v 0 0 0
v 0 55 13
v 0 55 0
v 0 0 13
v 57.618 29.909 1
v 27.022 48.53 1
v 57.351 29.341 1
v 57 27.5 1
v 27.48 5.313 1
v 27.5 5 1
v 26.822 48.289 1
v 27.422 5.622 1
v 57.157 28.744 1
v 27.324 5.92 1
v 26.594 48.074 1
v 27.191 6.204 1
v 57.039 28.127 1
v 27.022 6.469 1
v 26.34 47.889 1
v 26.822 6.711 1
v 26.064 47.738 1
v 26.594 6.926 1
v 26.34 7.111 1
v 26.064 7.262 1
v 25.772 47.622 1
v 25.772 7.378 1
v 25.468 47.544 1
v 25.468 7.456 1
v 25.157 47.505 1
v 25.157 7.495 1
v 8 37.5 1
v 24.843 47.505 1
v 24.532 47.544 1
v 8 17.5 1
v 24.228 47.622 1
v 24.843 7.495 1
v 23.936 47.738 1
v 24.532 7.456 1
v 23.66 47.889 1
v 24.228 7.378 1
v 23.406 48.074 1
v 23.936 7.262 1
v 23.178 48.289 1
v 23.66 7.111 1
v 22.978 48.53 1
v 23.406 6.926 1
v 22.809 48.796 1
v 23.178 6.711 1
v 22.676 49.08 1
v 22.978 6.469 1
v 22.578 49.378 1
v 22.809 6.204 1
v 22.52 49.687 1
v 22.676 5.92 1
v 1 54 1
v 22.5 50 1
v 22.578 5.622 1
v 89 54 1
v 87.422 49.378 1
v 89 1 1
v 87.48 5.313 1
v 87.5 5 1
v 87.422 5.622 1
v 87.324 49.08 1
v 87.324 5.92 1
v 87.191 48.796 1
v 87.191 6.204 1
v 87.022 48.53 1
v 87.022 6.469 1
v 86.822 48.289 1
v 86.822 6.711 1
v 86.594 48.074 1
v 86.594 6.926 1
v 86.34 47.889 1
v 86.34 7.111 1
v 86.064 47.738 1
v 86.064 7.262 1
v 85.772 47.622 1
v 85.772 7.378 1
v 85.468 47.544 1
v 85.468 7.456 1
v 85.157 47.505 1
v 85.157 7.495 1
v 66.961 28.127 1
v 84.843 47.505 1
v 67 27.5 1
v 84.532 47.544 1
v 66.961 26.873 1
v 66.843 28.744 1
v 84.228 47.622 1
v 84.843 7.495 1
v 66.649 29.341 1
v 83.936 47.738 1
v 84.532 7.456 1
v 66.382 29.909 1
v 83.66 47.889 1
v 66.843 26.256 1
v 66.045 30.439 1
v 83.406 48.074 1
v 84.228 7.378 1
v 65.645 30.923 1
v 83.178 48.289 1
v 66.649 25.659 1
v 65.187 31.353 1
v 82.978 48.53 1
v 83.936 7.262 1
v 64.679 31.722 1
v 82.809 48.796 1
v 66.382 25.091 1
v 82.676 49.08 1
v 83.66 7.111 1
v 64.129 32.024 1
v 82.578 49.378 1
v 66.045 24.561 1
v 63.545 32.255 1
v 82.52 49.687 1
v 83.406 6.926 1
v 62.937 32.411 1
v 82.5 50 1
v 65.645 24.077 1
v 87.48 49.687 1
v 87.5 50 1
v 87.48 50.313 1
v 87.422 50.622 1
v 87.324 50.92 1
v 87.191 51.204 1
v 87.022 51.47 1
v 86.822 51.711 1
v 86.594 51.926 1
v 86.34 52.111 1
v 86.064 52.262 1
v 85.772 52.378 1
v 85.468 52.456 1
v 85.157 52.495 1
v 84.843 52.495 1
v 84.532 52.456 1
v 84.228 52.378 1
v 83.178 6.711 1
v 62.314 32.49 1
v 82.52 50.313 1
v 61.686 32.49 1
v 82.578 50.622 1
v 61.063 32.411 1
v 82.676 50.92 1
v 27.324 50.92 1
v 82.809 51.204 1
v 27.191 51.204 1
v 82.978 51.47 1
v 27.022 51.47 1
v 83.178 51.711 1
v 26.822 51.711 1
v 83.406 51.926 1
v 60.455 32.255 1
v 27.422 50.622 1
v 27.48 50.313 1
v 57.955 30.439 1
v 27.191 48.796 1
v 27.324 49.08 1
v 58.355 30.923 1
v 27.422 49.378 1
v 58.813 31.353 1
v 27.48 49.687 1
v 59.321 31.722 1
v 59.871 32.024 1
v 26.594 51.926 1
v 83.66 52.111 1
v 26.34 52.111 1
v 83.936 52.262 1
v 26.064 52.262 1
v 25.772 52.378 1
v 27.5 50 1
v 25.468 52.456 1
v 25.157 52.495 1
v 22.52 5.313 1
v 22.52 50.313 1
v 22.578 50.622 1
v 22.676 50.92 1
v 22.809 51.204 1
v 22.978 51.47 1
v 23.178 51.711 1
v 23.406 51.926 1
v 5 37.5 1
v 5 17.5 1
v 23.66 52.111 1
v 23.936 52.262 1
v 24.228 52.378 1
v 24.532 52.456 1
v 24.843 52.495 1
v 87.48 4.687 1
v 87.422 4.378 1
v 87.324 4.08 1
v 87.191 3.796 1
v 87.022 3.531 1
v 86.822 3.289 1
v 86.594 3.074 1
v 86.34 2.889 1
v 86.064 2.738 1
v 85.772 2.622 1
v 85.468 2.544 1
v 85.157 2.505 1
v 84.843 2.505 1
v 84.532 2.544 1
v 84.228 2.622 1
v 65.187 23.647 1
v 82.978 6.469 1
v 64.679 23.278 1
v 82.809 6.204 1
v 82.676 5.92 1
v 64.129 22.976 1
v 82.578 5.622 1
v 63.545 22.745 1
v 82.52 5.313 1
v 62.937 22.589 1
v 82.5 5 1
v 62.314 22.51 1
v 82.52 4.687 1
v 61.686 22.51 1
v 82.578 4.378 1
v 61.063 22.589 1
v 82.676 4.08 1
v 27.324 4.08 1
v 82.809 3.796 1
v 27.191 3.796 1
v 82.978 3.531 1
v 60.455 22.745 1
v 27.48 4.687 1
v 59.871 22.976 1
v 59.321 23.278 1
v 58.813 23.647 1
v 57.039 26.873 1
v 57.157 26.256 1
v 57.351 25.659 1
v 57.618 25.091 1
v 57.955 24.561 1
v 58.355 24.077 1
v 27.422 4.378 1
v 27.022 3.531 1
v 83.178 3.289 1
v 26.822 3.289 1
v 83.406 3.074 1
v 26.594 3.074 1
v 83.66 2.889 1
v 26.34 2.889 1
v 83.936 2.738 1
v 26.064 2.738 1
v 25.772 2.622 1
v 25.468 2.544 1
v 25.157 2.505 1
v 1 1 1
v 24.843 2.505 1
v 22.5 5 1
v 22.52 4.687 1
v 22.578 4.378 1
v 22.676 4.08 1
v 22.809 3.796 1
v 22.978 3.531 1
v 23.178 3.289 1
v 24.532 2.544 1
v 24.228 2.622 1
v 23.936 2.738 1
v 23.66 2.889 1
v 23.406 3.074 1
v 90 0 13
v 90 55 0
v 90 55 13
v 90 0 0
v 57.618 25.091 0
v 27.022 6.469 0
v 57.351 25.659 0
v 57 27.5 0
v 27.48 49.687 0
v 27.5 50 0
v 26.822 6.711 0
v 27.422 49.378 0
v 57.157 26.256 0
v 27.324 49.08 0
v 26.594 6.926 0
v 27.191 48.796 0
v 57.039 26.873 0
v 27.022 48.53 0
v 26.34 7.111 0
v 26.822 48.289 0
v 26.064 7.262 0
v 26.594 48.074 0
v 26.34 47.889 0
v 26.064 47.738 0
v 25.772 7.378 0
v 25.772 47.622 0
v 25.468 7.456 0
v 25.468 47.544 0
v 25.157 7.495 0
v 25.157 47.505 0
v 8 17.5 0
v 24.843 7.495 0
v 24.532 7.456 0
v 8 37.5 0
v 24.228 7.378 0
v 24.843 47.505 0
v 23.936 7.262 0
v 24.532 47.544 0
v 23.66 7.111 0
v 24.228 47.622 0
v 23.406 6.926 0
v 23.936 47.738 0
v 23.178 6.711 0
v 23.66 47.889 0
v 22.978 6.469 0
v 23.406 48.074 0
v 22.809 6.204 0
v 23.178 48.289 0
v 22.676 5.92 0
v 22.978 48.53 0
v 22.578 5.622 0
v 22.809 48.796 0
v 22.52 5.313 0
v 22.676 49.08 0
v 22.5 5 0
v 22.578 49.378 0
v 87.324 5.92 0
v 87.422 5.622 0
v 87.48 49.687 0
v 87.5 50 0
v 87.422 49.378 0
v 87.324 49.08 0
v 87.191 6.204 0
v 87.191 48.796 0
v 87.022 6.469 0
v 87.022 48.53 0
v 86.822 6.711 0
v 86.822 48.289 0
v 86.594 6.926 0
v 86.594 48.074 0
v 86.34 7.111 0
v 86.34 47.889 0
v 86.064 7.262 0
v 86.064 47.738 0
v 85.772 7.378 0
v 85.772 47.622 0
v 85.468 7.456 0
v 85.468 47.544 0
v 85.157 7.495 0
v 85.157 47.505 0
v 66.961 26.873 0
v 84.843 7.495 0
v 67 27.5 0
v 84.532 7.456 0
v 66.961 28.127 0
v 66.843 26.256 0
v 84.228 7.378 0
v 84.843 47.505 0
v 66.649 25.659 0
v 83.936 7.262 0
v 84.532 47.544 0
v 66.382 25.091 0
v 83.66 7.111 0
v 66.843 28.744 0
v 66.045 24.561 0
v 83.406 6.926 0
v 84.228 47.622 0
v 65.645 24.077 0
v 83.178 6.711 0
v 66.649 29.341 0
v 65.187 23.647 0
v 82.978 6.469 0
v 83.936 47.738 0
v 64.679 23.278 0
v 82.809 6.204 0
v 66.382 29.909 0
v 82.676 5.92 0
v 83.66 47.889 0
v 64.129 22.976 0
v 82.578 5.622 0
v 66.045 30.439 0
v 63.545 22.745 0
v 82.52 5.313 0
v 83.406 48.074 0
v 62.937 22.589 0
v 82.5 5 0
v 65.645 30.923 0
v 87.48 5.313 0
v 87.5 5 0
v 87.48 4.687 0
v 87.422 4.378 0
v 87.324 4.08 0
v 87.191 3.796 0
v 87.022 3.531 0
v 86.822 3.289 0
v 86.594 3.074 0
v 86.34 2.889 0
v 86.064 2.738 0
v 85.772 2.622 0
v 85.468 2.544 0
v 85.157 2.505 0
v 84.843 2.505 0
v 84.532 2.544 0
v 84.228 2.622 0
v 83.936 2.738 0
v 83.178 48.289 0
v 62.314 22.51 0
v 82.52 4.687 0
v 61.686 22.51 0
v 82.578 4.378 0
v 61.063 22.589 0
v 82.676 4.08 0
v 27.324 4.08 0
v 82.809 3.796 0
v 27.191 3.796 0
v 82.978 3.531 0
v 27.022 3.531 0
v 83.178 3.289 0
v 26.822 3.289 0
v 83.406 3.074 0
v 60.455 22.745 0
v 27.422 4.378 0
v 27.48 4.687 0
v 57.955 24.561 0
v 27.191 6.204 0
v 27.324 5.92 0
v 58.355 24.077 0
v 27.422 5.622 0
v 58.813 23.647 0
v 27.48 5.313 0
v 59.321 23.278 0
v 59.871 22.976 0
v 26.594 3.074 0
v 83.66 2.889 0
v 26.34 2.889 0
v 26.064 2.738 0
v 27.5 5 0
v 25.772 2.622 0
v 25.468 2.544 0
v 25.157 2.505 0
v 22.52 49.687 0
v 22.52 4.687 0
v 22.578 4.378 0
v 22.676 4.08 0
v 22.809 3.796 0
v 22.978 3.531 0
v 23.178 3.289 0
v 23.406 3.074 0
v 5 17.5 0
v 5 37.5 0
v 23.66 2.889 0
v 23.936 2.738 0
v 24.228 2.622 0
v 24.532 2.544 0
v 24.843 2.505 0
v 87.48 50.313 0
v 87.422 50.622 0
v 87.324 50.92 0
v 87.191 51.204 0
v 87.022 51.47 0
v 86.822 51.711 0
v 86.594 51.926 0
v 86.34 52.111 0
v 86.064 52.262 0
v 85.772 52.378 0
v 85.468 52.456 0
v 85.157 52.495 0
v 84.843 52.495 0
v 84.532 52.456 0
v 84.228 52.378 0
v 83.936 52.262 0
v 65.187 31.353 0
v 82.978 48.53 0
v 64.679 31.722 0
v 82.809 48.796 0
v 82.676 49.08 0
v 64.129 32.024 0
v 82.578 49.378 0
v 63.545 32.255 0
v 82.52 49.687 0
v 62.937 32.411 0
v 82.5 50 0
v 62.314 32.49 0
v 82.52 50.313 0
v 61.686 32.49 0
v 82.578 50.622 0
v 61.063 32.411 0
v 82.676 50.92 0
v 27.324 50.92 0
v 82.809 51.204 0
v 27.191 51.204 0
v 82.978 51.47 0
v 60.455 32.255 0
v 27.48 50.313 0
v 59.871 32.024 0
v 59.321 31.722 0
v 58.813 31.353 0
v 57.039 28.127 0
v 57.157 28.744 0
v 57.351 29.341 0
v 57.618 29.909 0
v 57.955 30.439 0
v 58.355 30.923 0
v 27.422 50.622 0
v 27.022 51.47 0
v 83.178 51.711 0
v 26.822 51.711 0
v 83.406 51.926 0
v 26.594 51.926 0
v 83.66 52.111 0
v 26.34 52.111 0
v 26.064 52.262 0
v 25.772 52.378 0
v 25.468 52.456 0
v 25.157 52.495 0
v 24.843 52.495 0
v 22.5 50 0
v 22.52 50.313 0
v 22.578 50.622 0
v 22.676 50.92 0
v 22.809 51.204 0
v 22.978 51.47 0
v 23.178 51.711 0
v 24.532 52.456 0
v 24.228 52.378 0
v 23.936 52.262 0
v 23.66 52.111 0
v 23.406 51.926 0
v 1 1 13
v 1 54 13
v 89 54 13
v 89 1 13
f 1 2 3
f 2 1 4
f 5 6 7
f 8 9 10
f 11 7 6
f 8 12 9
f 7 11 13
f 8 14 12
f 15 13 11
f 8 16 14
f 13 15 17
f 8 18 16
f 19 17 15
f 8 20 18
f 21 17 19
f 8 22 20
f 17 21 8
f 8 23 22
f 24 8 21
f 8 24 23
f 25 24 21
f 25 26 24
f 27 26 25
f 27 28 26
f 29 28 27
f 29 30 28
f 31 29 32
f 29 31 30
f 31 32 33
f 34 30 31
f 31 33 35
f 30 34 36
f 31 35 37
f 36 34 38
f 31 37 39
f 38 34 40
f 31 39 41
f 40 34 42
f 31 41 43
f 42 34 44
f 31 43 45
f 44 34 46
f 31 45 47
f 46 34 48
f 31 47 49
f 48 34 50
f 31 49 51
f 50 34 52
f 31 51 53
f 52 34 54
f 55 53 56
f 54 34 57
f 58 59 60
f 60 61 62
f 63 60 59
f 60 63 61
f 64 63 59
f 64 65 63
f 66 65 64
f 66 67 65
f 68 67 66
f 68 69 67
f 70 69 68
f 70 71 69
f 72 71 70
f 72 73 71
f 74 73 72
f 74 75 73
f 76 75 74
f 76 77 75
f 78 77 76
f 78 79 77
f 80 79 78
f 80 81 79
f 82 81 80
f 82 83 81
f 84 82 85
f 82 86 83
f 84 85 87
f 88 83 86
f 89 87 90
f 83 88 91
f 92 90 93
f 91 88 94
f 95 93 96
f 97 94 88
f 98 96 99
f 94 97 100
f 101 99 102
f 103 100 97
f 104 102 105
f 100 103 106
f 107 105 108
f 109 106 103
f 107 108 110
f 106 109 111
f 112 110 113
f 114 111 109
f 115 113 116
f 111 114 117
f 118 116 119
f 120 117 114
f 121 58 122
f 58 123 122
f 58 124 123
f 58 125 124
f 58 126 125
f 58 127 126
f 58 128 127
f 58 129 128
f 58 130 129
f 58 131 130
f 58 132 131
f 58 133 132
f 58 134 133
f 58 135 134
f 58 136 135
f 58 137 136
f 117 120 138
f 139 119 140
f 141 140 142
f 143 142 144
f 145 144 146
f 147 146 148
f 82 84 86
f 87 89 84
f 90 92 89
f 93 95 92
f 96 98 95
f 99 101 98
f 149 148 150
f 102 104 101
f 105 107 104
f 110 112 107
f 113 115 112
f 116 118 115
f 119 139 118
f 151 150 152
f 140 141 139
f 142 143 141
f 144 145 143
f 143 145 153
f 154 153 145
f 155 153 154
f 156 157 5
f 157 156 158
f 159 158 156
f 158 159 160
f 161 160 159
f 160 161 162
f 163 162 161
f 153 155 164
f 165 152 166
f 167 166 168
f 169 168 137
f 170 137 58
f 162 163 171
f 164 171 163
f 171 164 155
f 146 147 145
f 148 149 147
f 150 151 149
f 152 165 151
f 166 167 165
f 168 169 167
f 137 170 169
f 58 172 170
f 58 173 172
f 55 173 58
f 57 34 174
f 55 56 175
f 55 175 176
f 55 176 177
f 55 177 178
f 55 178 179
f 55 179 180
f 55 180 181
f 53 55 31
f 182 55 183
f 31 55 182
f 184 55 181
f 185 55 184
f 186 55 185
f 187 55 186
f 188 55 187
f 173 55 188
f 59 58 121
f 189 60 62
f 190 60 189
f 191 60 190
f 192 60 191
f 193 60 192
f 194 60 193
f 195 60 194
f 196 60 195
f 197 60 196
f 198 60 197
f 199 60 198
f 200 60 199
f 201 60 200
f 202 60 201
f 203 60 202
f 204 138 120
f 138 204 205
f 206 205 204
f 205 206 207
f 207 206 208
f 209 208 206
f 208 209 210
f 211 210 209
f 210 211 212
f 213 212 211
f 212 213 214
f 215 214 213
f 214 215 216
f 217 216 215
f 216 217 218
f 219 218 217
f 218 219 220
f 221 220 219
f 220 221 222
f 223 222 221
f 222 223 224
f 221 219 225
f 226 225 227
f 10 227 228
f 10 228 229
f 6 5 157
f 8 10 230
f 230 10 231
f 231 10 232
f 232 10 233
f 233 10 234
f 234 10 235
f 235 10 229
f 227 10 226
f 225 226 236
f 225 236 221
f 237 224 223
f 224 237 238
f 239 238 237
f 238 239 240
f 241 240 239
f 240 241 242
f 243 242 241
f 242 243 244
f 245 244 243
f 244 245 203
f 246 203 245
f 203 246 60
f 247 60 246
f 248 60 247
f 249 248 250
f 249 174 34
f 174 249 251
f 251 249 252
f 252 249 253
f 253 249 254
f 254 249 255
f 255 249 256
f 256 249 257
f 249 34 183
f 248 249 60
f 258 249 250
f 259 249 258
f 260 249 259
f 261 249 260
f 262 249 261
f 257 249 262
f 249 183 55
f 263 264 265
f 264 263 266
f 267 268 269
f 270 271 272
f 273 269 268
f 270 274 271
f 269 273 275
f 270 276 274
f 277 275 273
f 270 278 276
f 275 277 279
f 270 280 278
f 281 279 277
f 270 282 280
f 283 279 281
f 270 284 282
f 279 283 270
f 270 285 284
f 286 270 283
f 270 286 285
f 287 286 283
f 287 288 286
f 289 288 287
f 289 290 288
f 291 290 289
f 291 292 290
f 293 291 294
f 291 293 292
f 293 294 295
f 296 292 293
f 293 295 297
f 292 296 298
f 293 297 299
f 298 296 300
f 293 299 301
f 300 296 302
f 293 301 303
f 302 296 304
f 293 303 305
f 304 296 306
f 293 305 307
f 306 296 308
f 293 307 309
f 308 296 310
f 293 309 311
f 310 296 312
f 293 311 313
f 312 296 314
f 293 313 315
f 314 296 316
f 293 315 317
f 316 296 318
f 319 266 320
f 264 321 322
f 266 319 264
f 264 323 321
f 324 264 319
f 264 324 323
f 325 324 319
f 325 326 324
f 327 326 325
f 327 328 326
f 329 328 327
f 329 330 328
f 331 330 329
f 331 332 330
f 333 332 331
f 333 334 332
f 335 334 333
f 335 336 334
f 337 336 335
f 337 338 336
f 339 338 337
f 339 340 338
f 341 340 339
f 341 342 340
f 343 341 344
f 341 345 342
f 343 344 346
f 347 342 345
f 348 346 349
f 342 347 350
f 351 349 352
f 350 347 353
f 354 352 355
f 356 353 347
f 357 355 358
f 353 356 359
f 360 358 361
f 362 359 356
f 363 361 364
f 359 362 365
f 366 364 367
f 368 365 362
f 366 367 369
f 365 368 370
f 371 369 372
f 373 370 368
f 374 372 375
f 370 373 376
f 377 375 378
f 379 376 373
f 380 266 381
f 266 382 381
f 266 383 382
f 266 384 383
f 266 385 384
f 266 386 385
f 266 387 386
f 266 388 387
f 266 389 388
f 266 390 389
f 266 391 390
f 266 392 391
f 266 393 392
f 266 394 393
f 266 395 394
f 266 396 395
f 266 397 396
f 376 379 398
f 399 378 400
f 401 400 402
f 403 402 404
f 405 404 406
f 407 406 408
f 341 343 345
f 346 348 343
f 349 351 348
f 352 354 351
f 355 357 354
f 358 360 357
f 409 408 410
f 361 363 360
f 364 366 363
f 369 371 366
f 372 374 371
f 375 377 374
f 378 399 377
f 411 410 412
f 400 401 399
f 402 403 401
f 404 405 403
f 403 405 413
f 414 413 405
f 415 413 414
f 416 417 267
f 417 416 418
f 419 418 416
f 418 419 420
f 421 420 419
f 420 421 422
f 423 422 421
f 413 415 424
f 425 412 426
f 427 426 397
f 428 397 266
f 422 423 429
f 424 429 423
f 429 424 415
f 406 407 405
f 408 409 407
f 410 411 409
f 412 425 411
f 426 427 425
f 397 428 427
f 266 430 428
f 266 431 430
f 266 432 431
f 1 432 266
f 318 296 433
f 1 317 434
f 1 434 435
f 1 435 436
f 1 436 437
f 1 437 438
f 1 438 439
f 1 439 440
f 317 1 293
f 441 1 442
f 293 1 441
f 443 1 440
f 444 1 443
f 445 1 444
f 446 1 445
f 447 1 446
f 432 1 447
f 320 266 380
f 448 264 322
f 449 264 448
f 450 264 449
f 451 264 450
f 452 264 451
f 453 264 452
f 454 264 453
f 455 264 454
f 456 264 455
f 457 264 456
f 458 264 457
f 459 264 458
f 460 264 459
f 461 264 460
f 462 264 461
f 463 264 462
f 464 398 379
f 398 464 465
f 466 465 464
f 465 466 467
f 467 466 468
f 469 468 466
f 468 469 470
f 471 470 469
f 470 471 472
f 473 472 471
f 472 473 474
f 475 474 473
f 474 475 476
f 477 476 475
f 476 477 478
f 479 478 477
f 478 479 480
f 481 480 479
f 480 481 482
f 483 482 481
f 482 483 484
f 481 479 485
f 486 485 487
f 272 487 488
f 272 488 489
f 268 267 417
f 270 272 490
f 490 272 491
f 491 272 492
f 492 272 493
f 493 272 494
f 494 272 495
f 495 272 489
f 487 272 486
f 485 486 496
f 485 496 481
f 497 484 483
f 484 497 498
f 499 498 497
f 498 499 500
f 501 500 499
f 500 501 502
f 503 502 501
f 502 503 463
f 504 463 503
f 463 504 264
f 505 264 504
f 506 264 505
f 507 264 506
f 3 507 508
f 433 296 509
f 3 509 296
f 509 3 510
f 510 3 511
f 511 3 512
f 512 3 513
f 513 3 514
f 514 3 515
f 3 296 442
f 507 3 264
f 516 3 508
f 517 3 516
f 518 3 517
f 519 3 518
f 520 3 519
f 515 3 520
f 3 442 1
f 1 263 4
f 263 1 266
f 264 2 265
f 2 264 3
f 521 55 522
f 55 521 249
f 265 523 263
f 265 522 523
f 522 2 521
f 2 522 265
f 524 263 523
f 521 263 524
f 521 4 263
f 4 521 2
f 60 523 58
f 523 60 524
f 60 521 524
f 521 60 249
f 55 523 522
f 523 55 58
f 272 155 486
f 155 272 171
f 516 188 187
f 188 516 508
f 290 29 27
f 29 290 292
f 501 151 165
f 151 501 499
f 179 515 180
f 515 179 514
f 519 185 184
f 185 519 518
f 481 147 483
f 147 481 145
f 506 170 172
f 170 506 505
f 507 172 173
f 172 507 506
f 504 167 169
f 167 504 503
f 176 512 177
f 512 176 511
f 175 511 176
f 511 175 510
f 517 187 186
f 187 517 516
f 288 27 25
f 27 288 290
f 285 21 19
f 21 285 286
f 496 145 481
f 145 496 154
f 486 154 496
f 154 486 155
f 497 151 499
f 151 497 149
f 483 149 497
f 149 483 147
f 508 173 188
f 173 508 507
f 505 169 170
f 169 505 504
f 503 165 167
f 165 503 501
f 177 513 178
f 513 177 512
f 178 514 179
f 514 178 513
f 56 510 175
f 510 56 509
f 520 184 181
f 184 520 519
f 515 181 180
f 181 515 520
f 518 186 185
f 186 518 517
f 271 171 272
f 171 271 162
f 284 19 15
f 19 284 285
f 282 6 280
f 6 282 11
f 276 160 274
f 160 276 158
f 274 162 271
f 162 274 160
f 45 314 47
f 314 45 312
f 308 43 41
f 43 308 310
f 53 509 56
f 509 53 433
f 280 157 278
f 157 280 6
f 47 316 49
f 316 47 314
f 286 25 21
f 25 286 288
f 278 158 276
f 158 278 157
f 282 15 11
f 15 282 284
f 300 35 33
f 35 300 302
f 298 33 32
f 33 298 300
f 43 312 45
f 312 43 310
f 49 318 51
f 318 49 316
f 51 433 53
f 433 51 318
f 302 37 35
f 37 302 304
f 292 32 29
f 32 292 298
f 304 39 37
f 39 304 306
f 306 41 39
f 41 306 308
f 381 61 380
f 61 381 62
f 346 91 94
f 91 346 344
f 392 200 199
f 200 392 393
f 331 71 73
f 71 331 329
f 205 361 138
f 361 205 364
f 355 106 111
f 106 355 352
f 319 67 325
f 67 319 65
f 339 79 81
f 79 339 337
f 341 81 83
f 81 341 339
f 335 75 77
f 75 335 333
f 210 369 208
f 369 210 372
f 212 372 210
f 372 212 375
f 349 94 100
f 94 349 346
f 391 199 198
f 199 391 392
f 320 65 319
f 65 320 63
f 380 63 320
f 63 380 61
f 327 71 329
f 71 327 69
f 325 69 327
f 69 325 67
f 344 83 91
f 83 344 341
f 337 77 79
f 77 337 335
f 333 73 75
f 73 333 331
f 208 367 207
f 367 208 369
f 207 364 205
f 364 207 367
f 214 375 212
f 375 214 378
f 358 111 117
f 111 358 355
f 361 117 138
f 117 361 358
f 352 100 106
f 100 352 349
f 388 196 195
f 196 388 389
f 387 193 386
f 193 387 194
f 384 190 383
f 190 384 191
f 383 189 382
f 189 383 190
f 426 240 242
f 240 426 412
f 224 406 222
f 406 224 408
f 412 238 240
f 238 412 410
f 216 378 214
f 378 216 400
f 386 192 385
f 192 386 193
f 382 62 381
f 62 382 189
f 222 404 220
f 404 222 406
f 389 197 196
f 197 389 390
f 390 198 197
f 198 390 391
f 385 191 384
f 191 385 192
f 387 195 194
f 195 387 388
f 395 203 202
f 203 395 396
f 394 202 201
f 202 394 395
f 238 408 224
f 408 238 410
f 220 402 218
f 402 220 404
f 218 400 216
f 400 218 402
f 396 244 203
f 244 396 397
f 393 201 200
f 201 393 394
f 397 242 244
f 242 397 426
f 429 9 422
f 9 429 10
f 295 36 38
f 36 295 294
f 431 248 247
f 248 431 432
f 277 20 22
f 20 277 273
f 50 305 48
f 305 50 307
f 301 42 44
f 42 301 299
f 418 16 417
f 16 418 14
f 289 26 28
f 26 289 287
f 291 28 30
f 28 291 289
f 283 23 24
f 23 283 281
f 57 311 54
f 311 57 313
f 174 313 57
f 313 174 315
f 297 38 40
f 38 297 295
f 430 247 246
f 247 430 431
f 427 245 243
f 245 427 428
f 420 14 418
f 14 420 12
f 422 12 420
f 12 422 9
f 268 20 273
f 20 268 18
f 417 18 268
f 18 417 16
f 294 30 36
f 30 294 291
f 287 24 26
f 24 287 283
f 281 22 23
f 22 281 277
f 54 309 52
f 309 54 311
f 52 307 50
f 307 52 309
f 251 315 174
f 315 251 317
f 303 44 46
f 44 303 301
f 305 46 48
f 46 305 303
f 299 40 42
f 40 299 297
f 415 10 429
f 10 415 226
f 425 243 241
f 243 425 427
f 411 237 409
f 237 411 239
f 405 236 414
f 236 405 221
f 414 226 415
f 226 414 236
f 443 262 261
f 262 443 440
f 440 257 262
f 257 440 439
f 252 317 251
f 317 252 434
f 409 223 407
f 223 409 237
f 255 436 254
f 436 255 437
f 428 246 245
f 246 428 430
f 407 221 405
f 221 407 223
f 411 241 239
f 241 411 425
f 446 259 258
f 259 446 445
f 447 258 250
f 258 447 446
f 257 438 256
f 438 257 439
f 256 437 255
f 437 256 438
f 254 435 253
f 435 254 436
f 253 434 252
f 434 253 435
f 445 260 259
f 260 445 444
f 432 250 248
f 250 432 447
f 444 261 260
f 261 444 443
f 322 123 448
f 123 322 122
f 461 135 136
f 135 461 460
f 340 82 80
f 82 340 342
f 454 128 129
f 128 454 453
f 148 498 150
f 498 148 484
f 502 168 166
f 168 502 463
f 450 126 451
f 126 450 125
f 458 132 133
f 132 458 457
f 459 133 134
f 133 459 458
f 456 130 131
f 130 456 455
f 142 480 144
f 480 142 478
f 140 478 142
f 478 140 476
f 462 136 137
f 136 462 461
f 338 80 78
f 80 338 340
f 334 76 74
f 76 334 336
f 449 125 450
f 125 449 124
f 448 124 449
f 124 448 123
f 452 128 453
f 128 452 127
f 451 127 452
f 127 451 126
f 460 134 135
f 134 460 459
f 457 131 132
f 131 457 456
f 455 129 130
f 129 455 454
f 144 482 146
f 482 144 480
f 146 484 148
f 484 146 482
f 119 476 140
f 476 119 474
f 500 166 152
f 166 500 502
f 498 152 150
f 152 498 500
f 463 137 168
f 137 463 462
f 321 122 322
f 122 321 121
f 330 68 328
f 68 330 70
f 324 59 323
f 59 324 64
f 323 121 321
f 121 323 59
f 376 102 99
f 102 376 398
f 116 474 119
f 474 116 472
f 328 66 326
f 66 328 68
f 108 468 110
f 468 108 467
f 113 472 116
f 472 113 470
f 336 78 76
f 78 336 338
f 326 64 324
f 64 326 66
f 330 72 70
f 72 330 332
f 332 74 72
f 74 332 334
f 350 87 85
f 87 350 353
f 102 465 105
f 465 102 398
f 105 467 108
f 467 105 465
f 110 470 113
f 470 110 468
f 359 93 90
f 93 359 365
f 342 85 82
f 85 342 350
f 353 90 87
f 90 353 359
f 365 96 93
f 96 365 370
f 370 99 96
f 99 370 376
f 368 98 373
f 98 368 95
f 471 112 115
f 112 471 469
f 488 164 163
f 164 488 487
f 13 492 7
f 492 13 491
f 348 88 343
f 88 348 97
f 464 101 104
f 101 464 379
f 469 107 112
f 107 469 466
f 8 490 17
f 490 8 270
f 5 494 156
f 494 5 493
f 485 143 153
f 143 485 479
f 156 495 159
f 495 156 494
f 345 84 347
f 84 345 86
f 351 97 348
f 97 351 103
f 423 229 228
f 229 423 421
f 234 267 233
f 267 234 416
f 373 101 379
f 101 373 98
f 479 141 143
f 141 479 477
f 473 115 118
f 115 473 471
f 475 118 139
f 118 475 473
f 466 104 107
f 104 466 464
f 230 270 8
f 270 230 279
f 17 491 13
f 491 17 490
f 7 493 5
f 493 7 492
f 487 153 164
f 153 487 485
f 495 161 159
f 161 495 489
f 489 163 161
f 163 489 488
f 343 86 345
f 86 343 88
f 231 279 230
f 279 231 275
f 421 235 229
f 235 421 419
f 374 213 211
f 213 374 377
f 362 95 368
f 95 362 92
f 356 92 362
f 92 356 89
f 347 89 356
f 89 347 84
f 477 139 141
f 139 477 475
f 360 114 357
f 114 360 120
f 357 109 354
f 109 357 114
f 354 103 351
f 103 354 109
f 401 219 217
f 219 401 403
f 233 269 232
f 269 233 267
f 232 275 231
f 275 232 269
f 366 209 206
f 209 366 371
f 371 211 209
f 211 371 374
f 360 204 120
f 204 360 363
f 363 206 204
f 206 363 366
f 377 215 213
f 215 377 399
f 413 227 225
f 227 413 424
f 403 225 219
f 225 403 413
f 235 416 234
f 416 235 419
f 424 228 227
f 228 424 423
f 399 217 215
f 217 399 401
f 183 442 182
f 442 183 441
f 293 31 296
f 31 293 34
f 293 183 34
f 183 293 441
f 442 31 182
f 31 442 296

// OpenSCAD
// Lightbox
difference() {
    union() {
        // Top (but printed as bottom)
        cube([90,55,1]);
        
        //Edges
        translate([1, 0, 1]) {
            color([1,0,0])
            cube([88,1,12]);
        }
        translate([1, 54, 1]) {
            color([0,0,1])
            cube([88,1,12]);
        }
        // Ends 
        translate([0, 0, 1]) {
            color([0,1,0])
            cube([1,55,12]);
        }
        translate([89, 0, 1]) {
            color([0,1,0])
            cube([1,55,12]);
        }
        
    }
       
    // Guide holes in each corner
    translate([25,50,-1]) cylinder(h=6, d=5,
    $fn=50);
    translate([85,5,-1]) cylinder(h=6, d=5,
    $fn=50);
    translate([25,5,-1]) cylinder(h=6, d=5,
    $fn=50);
    translate([85,50,-1]) cylinder(h=6, d=5,
    $fn=50);
    
    // Lighting hole
    translate([62, 27.5, -1]) {
            color([1,0,1])
            cylinder(h=13, r=5,
            $fn=50);  
        }
     // Slot for Pi Camera ribbon cable
    translate([5, 17.5, -1]) {
        color([1,0,0])
        cube([3,20,5]);  
    }
}
